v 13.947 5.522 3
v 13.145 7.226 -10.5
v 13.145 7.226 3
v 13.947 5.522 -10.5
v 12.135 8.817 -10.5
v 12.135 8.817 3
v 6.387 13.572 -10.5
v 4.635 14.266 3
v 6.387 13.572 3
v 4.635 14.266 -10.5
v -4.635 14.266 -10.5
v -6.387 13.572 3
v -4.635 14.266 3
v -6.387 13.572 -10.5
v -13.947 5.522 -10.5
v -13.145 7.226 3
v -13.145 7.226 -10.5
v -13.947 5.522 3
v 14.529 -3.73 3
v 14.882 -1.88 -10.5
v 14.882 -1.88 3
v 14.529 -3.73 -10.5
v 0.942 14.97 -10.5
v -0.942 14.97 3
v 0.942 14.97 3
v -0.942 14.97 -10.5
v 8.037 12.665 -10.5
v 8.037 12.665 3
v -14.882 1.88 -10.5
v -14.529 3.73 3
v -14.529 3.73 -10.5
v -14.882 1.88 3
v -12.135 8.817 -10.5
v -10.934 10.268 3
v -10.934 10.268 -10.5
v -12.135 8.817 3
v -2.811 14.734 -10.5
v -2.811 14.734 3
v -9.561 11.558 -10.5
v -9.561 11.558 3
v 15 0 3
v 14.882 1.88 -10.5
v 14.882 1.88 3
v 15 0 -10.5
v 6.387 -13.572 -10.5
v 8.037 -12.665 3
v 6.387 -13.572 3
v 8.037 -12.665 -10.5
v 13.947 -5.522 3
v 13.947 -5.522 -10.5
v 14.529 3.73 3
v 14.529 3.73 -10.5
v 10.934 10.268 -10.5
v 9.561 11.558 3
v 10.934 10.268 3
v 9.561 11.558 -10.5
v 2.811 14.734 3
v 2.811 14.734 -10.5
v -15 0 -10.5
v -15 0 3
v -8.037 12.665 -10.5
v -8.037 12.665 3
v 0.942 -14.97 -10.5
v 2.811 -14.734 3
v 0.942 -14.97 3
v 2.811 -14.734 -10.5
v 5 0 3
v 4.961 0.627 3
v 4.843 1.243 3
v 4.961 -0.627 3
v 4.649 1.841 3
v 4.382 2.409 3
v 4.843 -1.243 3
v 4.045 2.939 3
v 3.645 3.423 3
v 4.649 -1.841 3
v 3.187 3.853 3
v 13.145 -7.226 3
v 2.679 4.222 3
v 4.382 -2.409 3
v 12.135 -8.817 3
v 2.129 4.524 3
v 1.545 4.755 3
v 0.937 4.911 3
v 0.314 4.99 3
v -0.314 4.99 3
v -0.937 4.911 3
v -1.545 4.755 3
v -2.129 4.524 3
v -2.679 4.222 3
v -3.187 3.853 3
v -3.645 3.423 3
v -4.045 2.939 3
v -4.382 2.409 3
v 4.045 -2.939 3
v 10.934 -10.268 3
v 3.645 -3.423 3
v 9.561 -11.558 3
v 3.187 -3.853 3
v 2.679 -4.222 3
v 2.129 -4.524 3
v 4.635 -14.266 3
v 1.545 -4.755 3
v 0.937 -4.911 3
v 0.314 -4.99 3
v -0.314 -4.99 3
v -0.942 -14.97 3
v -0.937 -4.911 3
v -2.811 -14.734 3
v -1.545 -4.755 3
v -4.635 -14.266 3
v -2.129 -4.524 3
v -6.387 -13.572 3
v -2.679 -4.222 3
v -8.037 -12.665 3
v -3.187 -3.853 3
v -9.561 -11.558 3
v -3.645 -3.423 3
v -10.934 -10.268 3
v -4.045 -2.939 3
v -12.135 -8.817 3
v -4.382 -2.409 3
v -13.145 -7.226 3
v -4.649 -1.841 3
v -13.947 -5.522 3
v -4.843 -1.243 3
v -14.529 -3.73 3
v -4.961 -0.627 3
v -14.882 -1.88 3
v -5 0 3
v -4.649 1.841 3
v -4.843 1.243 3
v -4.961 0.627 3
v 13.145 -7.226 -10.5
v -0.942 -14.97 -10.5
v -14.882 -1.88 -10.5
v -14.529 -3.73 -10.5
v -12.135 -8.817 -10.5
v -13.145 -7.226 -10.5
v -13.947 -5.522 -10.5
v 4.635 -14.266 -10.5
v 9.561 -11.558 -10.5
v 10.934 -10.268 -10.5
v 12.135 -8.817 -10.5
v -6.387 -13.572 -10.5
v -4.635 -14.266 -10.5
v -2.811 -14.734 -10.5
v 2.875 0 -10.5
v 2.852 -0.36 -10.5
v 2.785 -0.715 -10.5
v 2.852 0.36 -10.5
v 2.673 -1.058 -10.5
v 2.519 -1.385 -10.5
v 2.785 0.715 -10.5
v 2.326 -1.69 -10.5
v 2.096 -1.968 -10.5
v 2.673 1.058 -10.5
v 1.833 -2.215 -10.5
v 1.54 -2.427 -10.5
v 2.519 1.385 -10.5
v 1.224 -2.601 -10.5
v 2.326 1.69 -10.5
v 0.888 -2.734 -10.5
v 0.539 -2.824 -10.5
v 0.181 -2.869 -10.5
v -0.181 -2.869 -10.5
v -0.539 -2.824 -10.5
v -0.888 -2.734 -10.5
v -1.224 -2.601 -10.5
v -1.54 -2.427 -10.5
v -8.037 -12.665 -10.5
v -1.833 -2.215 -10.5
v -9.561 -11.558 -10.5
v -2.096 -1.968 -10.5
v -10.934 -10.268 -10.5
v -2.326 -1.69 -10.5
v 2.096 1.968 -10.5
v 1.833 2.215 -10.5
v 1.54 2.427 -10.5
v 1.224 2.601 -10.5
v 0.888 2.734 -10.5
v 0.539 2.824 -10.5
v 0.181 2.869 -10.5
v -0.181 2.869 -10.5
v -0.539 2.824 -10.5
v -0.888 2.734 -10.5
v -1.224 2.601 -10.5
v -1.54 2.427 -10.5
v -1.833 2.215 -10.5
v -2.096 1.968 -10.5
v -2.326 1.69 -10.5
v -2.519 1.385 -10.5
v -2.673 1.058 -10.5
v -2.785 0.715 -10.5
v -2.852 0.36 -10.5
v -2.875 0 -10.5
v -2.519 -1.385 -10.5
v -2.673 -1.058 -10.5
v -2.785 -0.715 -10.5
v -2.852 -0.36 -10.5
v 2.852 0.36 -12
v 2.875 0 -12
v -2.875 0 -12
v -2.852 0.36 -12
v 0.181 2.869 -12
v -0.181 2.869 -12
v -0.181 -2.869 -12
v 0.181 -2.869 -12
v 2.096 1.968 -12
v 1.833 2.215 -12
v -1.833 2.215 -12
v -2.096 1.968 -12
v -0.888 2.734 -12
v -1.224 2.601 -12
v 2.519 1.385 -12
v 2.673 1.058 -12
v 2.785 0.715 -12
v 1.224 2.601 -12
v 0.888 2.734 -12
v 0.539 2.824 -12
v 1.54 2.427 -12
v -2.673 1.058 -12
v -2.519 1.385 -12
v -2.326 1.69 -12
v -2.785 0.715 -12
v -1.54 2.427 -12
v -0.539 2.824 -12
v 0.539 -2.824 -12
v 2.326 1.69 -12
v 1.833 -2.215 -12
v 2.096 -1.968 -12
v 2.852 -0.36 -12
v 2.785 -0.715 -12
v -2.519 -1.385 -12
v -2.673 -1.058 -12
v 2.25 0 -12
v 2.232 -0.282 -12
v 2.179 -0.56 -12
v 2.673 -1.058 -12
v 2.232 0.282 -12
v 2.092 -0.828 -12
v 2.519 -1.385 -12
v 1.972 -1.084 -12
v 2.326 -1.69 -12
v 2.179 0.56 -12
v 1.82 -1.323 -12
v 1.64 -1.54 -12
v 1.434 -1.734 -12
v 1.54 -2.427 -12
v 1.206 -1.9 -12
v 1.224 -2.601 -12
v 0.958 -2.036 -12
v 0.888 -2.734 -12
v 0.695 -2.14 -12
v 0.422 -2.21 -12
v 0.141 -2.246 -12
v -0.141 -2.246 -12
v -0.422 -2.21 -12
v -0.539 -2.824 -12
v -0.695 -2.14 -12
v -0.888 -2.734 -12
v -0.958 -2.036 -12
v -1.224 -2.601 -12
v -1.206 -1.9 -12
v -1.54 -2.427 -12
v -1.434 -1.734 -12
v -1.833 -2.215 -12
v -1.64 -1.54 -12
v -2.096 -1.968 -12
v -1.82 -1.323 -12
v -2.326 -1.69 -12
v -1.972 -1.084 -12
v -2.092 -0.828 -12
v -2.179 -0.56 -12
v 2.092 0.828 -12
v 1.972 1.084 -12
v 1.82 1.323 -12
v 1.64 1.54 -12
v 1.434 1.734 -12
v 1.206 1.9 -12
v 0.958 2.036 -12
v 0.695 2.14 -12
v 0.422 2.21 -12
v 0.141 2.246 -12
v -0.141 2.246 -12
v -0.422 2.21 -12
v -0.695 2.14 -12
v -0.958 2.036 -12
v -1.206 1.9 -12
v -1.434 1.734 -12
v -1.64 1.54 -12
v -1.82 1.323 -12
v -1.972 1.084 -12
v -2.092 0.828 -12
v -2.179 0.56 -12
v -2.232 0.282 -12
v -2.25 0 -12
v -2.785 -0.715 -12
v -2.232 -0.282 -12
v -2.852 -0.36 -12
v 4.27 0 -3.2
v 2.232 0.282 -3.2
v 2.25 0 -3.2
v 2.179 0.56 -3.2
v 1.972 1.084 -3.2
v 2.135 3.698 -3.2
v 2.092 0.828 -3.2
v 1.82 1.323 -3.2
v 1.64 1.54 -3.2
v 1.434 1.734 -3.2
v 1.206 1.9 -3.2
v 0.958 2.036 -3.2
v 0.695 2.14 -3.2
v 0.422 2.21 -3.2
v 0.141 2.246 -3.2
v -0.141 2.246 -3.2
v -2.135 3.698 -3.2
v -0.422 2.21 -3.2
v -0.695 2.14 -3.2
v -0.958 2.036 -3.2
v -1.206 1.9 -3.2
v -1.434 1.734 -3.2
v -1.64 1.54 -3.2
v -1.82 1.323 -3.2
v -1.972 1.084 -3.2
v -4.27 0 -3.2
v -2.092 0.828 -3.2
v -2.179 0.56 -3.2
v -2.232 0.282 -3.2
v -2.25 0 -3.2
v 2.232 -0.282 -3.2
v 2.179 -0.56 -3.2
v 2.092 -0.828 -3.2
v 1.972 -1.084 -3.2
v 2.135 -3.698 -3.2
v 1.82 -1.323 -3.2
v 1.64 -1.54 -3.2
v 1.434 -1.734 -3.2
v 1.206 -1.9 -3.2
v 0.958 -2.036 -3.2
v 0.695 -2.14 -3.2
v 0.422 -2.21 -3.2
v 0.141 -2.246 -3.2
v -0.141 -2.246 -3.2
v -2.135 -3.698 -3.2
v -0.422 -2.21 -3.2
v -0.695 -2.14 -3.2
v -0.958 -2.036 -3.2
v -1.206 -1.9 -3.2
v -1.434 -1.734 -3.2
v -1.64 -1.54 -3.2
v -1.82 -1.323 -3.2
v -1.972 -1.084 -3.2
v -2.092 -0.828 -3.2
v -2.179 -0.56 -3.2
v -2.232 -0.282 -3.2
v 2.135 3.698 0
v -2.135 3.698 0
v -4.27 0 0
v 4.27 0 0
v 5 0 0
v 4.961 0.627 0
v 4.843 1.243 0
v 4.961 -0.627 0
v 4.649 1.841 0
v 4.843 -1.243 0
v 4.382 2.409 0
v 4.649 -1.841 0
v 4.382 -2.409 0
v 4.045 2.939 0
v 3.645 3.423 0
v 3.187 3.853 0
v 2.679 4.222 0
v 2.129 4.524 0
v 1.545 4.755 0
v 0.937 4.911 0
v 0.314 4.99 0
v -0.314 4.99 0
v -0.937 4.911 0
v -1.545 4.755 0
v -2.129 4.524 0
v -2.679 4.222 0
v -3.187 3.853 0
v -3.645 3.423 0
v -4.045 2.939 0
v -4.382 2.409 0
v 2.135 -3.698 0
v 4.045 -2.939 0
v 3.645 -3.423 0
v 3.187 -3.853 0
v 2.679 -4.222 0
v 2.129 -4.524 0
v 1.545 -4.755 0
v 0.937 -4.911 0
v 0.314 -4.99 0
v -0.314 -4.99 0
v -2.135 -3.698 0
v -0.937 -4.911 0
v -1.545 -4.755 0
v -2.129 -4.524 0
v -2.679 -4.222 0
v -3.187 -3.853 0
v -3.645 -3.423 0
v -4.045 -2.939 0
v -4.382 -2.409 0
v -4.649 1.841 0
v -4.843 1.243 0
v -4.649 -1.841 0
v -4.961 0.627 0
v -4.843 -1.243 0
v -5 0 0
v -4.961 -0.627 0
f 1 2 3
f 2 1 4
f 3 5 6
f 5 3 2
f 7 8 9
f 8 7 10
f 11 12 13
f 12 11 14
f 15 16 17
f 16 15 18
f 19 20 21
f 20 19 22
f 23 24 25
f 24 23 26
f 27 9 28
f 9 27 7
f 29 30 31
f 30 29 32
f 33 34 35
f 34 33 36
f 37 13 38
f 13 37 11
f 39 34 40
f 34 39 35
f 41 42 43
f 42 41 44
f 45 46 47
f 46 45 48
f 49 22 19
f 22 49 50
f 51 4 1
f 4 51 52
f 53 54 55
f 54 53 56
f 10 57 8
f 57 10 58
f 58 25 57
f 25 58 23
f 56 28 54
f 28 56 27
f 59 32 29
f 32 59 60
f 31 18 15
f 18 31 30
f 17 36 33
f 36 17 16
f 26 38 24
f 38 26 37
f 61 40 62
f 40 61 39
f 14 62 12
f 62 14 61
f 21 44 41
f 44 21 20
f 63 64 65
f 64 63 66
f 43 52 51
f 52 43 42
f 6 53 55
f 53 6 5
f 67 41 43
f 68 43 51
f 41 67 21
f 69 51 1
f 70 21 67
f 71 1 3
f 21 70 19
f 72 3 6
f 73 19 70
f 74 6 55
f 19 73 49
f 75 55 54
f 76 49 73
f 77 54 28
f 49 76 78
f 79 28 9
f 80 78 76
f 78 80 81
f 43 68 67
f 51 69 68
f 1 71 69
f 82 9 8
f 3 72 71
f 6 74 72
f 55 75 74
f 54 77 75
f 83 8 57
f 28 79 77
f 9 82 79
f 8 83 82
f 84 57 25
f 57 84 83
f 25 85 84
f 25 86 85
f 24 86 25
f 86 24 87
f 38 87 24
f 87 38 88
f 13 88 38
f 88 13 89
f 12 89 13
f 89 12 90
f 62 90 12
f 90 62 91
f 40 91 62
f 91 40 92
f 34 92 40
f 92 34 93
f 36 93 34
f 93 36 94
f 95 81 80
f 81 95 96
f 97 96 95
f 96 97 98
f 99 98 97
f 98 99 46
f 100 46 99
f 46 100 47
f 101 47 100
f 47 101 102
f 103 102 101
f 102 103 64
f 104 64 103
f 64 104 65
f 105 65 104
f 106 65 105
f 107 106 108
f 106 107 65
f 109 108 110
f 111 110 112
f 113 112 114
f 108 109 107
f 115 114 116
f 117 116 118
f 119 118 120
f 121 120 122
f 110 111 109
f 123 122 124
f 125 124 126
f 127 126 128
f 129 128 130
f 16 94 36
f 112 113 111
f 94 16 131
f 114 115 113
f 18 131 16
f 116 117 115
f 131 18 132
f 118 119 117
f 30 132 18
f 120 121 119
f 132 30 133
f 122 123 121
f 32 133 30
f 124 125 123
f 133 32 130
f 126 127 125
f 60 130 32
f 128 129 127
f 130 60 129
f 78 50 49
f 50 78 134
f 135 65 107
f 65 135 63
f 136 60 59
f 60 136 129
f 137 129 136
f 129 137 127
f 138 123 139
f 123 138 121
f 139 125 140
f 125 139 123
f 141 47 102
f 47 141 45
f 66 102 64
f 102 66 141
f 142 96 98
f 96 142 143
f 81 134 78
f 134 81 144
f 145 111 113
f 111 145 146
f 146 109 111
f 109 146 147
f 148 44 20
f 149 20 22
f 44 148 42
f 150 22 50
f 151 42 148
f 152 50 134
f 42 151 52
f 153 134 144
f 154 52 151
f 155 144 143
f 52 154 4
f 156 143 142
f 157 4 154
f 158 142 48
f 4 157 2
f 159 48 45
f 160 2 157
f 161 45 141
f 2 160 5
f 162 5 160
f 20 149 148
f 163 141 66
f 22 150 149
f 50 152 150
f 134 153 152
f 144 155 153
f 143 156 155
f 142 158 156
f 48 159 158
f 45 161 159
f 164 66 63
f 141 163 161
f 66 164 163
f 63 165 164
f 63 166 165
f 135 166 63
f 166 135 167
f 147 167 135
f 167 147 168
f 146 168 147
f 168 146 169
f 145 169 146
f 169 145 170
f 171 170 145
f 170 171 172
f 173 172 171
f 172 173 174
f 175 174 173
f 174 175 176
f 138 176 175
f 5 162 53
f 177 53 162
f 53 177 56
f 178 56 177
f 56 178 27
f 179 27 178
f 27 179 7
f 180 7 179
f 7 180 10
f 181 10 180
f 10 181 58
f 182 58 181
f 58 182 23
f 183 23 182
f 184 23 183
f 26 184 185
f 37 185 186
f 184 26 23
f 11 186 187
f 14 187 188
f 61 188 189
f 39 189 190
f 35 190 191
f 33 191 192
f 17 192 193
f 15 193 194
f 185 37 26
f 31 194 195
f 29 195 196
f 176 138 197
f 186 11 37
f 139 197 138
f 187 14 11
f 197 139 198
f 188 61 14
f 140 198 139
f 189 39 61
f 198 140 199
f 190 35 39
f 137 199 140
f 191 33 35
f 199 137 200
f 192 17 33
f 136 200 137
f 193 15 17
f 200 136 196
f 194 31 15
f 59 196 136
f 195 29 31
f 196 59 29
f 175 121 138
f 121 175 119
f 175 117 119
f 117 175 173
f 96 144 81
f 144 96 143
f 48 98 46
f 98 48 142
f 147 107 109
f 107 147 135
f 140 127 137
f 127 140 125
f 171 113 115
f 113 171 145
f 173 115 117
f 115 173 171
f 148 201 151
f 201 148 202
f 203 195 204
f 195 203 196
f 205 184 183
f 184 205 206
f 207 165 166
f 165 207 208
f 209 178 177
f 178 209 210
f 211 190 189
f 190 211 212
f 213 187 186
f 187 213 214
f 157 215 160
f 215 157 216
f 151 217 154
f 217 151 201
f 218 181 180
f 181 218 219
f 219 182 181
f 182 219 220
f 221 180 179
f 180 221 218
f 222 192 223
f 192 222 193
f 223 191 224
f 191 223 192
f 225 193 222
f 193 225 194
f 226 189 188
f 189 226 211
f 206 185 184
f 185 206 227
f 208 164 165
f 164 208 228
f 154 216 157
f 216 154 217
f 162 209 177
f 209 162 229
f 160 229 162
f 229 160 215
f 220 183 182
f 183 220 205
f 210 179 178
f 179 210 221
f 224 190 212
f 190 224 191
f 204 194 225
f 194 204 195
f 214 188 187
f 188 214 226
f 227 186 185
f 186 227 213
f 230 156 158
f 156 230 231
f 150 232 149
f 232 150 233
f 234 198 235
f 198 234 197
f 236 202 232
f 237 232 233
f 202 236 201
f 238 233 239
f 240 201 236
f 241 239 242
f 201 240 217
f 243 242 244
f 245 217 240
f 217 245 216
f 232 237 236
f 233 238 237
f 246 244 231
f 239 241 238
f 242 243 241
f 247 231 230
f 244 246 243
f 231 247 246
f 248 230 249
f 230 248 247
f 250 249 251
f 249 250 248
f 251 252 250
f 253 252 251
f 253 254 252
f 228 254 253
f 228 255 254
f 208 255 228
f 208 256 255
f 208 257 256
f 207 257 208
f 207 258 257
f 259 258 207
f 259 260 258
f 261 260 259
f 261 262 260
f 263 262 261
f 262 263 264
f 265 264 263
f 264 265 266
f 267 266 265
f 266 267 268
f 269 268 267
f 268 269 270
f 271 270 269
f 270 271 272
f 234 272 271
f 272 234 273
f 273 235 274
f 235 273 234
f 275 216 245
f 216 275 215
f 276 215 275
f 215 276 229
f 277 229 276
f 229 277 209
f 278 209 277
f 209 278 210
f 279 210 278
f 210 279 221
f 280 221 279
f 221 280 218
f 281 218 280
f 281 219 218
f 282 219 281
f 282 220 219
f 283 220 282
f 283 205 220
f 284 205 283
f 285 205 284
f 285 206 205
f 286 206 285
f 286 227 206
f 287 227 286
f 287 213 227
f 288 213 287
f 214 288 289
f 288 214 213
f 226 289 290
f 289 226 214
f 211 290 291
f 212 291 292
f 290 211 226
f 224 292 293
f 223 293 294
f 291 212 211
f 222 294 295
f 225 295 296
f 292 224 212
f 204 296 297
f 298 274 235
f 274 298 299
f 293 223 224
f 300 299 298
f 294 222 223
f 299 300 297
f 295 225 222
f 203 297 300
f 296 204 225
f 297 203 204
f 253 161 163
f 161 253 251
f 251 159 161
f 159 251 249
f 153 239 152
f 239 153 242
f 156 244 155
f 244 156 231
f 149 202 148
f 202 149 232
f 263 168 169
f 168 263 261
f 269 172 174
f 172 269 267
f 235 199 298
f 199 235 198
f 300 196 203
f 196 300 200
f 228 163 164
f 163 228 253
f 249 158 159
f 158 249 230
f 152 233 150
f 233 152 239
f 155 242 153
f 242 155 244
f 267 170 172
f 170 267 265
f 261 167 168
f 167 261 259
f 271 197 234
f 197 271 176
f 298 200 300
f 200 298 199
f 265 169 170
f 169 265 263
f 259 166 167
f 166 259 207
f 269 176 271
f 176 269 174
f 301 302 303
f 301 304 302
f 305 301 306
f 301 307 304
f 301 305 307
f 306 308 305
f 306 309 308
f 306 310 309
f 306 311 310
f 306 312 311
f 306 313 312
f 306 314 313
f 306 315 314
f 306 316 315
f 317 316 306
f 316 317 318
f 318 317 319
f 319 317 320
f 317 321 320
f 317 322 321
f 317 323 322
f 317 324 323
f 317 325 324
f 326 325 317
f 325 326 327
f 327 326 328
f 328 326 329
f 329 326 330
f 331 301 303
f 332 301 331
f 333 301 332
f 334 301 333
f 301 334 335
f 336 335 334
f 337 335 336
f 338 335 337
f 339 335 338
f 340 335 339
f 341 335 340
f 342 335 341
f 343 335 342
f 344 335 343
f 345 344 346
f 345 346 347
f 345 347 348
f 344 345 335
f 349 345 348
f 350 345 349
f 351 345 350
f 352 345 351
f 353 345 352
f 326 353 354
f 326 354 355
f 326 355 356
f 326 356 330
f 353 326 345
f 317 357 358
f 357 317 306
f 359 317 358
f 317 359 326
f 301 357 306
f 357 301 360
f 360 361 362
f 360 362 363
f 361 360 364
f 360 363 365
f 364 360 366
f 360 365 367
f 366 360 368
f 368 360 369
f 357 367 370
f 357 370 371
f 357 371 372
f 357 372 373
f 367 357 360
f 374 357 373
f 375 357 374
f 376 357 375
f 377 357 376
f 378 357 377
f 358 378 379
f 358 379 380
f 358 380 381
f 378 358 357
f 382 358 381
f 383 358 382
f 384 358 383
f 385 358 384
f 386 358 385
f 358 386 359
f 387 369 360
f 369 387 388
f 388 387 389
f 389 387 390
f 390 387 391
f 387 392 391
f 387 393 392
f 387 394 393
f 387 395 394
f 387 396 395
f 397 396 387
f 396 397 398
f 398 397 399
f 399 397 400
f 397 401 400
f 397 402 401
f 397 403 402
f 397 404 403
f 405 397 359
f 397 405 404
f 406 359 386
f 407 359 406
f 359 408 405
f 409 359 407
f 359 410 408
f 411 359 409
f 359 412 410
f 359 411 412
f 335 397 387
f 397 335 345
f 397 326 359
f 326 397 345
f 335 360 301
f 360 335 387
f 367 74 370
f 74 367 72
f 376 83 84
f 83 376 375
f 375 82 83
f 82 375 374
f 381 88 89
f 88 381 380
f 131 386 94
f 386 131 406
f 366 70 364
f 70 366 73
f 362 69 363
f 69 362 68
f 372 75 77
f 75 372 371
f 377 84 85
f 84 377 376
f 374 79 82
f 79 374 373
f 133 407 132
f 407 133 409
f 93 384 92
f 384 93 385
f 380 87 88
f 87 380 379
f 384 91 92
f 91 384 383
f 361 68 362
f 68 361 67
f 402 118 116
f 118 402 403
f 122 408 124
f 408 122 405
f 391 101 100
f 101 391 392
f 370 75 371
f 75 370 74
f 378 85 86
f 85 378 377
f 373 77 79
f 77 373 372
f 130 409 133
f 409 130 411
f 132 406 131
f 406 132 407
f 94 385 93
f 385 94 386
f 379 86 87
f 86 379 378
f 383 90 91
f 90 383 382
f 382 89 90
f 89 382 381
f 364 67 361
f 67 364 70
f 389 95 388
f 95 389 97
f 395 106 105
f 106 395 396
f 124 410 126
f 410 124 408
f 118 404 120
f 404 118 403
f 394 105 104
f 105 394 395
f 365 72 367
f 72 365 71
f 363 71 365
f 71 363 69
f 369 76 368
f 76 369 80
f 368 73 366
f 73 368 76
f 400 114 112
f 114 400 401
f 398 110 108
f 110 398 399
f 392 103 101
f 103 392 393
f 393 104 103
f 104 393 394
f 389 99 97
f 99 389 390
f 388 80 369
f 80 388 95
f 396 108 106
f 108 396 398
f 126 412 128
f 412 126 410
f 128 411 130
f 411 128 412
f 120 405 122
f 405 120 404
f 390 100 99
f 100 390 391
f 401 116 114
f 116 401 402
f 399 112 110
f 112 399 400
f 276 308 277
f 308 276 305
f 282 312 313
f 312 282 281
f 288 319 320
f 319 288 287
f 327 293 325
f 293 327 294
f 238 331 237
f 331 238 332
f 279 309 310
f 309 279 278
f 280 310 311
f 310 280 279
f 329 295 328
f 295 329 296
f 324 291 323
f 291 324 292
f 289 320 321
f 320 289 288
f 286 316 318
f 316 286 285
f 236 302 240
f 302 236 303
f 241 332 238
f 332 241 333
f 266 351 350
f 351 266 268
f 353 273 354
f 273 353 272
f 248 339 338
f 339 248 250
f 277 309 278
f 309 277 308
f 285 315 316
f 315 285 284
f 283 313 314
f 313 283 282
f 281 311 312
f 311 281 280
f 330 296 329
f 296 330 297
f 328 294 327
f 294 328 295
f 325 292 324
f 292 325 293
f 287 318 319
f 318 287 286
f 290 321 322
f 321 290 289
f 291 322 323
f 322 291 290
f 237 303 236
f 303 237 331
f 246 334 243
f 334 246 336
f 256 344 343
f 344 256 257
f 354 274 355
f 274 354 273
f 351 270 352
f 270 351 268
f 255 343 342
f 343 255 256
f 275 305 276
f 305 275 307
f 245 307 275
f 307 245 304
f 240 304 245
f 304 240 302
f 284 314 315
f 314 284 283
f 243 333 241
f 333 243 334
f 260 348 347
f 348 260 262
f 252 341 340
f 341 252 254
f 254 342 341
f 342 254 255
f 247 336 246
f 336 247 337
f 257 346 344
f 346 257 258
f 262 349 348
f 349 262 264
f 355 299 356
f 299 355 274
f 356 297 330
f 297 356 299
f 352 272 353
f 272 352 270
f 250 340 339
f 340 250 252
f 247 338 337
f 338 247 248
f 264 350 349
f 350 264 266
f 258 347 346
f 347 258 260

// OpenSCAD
$fn = 50;


difference() {
	union() {
		translate(v = [0, 0, -10.5000000000]) {
			cylinder(h = 13.5000000000, r = 15.0000000000);
		}
		#translate(v = [0, 0, -12.0000000000]) {
			cylinder(h = 12, r = 2.8750000000);
		}
	}
	union() {
		translate(v = [0, 0, 0]) {
			rotate(a = [0, 0, 0]) {
				difference() {
					union() {
						translate(v = [0, 0, -3.2000000000]) {
							linear_extrude(height = 3.2000000000) {
								polygon(points = [[4.2698000000, 0.0000000000], [2.1349000000, 3.6977552691], [-2.1349000000, 3.6977552691], [-4.2698000000, 0.0000000000], [-2.1349000000, -3.6977552691], [2.1349000000, -3.6977552691]]);
							}
						}
					}
					union();
				}
			}
		}
		#cylinder(h = 3, r = 5.0000000000);
		#translate(v = [0, 0, -100.0000000000]) {
			cylinder(h = 200, r = 2.2500000000);
		}
	}
}
